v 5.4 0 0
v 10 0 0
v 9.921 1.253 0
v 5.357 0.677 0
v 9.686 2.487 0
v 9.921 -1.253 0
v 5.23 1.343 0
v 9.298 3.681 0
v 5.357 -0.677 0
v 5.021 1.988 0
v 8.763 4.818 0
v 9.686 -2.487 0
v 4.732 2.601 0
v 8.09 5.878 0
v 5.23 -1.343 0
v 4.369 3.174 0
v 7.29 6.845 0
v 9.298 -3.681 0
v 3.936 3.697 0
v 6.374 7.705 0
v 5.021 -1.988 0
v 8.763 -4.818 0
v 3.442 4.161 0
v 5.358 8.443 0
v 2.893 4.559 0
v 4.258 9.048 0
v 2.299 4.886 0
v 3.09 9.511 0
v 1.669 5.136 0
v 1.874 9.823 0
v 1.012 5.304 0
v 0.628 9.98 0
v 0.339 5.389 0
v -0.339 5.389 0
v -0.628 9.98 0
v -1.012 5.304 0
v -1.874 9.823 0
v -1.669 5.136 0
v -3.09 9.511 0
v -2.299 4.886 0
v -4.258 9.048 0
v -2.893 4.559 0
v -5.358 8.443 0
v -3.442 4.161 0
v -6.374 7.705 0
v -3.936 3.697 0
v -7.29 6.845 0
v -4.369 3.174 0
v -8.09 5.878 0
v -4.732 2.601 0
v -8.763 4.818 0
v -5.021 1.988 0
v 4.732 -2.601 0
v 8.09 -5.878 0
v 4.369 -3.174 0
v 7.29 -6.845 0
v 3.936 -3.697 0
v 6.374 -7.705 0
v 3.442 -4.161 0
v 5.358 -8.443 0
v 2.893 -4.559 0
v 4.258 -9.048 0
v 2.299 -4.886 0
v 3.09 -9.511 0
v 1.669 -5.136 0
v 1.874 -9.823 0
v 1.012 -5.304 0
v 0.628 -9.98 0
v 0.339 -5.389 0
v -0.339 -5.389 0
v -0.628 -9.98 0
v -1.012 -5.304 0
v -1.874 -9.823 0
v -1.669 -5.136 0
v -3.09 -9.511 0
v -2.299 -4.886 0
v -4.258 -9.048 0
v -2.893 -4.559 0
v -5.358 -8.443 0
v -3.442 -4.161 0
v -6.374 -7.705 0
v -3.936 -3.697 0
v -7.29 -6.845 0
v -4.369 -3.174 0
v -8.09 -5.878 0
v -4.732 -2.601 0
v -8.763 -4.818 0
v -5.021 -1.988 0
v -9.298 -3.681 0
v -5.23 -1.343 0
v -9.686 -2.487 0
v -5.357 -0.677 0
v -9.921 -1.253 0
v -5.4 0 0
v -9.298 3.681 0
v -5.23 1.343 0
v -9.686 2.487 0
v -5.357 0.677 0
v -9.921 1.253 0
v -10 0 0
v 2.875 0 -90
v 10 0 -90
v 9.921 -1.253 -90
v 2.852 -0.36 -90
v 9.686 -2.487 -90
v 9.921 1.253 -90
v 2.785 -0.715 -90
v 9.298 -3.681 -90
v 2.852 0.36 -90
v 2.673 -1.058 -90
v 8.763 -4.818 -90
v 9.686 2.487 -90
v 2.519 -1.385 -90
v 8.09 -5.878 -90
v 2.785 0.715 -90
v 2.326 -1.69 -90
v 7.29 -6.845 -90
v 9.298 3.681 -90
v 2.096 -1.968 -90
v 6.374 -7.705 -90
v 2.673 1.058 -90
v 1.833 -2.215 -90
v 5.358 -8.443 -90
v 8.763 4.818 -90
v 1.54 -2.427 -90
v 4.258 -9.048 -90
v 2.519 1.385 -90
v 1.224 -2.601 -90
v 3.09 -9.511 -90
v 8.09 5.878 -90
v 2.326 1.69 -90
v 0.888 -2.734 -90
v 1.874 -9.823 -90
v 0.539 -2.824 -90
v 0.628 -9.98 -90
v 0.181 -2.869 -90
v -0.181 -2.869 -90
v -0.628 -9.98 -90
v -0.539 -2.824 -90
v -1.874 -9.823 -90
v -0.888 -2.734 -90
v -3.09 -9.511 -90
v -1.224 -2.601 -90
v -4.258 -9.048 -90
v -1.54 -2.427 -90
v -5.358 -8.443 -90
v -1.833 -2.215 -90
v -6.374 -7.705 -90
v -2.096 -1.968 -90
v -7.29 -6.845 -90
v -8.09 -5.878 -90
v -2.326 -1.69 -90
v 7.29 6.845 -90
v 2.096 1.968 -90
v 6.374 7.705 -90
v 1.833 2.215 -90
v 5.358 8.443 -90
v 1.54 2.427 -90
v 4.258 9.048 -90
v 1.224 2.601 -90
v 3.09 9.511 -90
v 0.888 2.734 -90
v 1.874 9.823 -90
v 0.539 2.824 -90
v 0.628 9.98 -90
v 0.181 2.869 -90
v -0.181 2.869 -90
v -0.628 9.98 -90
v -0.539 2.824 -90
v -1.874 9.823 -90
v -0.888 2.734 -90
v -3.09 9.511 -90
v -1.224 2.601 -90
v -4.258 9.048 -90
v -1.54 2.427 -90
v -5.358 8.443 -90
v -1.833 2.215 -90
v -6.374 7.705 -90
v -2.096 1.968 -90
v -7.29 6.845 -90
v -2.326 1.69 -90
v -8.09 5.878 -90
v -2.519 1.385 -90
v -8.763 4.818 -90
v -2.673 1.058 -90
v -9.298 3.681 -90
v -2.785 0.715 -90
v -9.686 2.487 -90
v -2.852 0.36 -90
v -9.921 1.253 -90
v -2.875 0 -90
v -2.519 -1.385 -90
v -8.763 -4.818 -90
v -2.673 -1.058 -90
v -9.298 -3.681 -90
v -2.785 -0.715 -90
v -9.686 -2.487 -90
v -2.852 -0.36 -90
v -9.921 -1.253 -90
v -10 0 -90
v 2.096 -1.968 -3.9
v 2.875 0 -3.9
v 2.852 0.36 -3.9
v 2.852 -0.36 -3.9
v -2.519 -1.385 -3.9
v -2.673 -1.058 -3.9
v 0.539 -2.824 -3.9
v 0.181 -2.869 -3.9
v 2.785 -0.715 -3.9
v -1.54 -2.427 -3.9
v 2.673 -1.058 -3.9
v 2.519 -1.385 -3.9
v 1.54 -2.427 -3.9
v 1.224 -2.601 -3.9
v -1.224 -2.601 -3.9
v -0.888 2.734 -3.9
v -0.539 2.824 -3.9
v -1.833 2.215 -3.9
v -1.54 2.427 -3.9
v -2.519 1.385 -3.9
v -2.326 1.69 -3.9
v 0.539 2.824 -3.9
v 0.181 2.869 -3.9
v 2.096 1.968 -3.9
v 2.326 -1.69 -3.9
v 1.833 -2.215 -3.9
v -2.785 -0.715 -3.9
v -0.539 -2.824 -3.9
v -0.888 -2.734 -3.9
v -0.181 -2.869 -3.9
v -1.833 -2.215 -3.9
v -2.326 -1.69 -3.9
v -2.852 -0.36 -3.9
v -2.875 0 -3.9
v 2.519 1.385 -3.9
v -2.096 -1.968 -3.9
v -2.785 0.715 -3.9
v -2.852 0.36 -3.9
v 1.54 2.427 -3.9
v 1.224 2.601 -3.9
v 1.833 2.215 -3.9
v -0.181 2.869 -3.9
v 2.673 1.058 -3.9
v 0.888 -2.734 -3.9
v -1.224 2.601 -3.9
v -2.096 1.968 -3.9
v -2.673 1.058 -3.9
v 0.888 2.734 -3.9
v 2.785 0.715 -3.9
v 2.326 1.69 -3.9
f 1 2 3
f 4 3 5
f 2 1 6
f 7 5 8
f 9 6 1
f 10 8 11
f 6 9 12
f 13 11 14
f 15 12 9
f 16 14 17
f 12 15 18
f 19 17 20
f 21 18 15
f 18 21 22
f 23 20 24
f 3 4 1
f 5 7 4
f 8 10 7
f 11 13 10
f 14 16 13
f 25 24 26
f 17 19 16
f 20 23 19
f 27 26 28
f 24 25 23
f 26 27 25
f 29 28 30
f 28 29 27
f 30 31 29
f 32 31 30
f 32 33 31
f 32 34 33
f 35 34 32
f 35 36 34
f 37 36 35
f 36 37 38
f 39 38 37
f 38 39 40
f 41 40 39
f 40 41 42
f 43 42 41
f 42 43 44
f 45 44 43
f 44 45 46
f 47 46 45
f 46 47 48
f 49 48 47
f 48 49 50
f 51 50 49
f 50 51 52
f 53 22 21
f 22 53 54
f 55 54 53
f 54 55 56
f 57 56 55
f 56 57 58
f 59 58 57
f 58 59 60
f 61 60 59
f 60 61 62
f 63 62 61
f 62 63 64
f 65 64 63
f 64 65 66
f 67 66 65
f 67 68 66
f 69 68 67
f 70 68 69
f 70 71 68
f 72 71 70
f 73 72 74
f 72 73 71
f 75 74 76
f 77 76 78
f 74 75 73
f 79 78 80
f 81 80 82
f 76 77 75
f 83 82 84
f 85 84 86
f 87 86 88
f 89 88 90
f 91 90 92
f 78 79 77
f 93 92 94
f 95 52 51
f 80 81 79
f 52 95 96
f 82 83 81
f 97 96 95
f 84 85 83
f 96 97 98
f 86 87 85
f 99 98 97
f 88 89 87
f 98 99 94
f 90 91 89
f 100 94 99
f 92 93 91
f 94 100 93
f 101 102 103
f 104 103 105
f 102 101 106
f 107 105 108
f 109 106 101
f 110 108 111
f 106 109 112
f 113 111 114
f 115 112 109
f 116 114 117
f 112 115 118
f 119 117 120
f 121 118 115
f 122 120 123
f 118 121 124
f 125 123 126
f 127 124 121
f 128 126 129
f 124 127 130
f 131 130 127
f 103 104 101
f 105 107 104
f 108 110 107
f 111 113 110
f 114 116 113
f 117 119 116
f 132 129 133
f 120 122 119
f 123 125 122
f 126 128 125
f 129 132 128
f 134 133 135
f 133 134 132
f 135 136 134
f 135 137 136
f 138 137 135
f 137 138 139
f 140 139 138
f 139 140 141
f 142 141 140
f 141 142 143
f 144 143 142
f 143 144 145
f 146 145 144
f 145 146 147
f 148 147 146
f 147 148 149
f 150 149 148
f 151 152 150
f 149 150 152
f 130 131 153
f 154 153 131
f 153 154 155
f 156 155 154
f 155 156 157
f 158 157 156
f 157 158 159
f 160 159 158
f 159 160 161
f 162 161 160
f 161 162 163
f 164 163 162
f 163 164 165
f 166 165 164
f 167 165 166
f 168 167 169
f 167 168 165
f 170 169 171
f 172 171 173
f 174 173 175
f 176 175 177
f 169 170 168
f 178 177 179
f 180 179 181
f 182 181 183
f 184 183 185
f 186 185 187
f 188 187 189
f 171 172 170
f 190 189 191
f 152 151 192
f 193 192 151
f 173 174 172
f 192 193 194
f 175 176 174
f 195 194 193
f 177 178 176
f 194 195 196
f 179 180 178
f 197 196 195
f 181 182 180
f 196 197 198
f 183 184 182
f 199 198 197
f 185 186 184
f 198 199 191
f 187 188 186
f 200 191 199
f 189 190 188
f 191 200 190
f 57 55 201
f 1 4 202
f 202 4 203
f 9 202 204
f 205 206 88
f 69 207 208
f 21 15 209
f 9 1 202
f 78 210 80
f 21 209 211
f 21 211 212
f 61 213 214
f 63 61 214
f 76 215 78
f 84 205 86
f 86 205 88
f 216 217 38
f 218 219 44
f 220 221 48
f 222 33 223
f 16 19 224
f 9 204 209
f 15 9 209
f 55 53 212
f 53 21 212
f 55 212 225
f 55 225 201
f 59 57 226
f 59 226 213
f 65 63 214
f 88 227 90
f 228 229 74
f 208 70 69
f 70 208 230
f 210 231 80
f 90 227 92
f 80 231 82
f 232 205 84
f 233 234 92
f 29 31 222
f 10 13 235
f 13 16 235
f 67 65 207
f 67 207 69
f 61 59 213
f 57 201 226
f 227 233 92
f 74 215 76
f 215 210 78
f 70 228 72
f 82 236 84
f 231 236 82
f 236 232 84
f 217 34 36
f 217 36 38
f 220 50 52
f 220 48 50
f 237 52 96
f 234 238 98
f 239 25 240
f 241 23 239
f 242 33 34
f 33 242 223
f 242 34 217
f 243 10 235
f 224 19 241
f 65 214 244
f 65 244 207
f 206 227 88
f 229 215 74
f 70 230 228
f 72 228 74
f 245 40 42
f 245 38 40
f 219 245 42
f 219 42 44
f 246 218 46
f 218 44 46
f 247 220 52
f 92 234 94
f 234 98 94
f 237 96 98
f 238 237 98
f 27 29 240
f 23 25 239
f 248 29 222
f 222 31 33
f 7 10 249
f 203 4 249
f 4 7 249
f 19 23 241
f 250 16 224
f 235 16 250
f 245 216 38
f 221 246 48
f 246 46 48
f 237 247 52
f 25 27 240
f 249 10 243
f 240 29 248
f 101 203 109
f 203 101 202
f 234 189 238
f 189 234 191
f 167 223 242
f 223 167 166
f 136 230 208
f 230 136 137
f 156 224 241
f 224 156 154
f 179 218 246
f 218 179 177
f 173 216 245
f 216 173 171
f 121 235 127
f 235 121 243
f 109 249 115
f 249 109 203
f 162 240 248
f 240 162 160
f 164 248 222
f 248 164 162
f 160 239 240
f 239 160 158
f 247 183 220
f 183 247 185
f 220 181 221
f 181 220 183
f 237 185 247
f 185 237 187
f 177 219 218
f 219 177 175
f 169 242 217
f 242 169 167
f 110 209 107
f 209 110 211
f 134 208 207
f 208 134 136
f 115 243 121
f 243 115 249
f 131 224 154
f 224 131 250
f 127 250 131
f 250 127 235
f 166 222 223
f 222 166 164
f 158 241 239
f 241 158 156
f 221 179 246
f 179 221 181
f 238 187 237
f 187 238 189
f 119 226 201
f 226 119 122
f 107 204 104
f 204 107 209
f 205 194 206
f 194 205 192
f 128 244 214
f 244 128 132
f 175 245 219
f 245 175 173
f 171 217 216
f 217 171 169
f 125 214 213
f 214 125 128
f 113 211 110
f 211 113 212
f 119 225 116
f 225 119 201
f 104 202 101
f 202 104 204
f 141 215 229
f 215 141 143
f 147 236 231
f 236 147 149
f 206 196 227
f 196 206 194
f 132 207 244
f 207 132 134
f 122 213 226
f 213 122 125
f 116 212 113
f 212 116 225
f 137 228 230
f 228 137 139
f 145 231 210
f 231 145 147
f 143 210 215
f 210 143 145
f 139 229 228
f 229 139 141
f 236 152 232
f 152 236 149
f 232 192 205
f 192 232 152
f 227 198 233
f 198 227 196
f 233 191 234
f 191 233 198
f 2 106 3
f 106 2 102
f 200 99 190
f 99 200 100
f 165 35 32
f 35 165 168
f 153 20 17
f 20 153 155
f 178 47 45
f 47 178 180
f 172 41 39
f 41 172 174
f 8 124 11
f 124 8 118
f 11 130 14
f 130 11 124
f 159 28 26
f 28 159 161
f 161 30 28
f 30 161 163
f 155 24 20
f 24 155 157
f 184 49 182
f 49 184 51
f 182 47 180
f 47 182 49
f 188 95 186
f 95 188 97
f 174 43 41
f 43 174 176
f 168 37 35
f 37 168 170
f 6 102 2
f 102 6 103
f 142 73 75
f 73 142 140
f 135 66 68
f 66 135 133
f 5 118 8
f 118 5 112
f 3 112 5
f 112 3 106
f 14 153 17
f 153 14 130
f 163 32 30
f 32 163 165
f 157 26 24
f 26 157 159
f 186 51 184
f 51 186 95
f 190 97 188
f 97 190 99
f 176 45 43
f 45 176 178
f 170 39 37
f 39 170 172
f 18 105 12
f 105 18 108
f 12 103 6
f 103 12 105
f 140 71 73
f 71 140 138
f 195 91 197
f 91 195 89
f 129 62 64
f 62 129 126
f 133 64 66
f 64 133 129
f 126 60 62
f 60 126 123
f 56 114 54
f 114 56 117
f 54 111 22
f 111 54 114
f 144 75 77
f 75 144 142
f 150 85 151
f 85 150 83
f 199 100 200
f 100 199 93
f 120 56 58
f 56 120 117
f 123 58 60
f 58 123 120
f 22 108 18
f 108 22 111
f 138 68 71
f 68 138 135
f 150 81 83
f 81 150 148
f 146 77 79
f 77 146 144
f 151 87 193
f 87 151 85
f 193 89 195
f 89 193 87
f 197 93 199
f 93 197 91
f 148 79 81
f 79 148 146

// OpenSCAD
$fn = 50;


difference() {
	union() {
		translate(v = [0, 0, -90.0000000000]) {
			cylinder(h = 90, r = 10.0000000000);
		}
		cylinder(h = 0, r = 16.0000000000);
	}
	union() {
		translate(v = [0, 0, 0]) {
			rotate(a = [0, 0, 0]) {
				difference() {
					union() {
						#translate(v = [0, 0, -90.0000000000]) {
							cylinder(h = 90, r = 2.6000000000);
						}
						#translate(v = [0, 0, -3.9000000000]) {
							cylinder(h = 3.9000000000, r = 10.0000000000, r1 = 2.8750000000, r2 = 5.4000000000);
						}
						#translate(v = [0, 0, -90.0000000000]) {
							cylinder(h = 90, r = 2.8750000000);
						}
						#translate(v = [0, 0, -90.0000000000]) {
							cylinder(h = 90, r = 2.6000000000);
						}
					}
					union();
				}
			}
		}
	}
}
